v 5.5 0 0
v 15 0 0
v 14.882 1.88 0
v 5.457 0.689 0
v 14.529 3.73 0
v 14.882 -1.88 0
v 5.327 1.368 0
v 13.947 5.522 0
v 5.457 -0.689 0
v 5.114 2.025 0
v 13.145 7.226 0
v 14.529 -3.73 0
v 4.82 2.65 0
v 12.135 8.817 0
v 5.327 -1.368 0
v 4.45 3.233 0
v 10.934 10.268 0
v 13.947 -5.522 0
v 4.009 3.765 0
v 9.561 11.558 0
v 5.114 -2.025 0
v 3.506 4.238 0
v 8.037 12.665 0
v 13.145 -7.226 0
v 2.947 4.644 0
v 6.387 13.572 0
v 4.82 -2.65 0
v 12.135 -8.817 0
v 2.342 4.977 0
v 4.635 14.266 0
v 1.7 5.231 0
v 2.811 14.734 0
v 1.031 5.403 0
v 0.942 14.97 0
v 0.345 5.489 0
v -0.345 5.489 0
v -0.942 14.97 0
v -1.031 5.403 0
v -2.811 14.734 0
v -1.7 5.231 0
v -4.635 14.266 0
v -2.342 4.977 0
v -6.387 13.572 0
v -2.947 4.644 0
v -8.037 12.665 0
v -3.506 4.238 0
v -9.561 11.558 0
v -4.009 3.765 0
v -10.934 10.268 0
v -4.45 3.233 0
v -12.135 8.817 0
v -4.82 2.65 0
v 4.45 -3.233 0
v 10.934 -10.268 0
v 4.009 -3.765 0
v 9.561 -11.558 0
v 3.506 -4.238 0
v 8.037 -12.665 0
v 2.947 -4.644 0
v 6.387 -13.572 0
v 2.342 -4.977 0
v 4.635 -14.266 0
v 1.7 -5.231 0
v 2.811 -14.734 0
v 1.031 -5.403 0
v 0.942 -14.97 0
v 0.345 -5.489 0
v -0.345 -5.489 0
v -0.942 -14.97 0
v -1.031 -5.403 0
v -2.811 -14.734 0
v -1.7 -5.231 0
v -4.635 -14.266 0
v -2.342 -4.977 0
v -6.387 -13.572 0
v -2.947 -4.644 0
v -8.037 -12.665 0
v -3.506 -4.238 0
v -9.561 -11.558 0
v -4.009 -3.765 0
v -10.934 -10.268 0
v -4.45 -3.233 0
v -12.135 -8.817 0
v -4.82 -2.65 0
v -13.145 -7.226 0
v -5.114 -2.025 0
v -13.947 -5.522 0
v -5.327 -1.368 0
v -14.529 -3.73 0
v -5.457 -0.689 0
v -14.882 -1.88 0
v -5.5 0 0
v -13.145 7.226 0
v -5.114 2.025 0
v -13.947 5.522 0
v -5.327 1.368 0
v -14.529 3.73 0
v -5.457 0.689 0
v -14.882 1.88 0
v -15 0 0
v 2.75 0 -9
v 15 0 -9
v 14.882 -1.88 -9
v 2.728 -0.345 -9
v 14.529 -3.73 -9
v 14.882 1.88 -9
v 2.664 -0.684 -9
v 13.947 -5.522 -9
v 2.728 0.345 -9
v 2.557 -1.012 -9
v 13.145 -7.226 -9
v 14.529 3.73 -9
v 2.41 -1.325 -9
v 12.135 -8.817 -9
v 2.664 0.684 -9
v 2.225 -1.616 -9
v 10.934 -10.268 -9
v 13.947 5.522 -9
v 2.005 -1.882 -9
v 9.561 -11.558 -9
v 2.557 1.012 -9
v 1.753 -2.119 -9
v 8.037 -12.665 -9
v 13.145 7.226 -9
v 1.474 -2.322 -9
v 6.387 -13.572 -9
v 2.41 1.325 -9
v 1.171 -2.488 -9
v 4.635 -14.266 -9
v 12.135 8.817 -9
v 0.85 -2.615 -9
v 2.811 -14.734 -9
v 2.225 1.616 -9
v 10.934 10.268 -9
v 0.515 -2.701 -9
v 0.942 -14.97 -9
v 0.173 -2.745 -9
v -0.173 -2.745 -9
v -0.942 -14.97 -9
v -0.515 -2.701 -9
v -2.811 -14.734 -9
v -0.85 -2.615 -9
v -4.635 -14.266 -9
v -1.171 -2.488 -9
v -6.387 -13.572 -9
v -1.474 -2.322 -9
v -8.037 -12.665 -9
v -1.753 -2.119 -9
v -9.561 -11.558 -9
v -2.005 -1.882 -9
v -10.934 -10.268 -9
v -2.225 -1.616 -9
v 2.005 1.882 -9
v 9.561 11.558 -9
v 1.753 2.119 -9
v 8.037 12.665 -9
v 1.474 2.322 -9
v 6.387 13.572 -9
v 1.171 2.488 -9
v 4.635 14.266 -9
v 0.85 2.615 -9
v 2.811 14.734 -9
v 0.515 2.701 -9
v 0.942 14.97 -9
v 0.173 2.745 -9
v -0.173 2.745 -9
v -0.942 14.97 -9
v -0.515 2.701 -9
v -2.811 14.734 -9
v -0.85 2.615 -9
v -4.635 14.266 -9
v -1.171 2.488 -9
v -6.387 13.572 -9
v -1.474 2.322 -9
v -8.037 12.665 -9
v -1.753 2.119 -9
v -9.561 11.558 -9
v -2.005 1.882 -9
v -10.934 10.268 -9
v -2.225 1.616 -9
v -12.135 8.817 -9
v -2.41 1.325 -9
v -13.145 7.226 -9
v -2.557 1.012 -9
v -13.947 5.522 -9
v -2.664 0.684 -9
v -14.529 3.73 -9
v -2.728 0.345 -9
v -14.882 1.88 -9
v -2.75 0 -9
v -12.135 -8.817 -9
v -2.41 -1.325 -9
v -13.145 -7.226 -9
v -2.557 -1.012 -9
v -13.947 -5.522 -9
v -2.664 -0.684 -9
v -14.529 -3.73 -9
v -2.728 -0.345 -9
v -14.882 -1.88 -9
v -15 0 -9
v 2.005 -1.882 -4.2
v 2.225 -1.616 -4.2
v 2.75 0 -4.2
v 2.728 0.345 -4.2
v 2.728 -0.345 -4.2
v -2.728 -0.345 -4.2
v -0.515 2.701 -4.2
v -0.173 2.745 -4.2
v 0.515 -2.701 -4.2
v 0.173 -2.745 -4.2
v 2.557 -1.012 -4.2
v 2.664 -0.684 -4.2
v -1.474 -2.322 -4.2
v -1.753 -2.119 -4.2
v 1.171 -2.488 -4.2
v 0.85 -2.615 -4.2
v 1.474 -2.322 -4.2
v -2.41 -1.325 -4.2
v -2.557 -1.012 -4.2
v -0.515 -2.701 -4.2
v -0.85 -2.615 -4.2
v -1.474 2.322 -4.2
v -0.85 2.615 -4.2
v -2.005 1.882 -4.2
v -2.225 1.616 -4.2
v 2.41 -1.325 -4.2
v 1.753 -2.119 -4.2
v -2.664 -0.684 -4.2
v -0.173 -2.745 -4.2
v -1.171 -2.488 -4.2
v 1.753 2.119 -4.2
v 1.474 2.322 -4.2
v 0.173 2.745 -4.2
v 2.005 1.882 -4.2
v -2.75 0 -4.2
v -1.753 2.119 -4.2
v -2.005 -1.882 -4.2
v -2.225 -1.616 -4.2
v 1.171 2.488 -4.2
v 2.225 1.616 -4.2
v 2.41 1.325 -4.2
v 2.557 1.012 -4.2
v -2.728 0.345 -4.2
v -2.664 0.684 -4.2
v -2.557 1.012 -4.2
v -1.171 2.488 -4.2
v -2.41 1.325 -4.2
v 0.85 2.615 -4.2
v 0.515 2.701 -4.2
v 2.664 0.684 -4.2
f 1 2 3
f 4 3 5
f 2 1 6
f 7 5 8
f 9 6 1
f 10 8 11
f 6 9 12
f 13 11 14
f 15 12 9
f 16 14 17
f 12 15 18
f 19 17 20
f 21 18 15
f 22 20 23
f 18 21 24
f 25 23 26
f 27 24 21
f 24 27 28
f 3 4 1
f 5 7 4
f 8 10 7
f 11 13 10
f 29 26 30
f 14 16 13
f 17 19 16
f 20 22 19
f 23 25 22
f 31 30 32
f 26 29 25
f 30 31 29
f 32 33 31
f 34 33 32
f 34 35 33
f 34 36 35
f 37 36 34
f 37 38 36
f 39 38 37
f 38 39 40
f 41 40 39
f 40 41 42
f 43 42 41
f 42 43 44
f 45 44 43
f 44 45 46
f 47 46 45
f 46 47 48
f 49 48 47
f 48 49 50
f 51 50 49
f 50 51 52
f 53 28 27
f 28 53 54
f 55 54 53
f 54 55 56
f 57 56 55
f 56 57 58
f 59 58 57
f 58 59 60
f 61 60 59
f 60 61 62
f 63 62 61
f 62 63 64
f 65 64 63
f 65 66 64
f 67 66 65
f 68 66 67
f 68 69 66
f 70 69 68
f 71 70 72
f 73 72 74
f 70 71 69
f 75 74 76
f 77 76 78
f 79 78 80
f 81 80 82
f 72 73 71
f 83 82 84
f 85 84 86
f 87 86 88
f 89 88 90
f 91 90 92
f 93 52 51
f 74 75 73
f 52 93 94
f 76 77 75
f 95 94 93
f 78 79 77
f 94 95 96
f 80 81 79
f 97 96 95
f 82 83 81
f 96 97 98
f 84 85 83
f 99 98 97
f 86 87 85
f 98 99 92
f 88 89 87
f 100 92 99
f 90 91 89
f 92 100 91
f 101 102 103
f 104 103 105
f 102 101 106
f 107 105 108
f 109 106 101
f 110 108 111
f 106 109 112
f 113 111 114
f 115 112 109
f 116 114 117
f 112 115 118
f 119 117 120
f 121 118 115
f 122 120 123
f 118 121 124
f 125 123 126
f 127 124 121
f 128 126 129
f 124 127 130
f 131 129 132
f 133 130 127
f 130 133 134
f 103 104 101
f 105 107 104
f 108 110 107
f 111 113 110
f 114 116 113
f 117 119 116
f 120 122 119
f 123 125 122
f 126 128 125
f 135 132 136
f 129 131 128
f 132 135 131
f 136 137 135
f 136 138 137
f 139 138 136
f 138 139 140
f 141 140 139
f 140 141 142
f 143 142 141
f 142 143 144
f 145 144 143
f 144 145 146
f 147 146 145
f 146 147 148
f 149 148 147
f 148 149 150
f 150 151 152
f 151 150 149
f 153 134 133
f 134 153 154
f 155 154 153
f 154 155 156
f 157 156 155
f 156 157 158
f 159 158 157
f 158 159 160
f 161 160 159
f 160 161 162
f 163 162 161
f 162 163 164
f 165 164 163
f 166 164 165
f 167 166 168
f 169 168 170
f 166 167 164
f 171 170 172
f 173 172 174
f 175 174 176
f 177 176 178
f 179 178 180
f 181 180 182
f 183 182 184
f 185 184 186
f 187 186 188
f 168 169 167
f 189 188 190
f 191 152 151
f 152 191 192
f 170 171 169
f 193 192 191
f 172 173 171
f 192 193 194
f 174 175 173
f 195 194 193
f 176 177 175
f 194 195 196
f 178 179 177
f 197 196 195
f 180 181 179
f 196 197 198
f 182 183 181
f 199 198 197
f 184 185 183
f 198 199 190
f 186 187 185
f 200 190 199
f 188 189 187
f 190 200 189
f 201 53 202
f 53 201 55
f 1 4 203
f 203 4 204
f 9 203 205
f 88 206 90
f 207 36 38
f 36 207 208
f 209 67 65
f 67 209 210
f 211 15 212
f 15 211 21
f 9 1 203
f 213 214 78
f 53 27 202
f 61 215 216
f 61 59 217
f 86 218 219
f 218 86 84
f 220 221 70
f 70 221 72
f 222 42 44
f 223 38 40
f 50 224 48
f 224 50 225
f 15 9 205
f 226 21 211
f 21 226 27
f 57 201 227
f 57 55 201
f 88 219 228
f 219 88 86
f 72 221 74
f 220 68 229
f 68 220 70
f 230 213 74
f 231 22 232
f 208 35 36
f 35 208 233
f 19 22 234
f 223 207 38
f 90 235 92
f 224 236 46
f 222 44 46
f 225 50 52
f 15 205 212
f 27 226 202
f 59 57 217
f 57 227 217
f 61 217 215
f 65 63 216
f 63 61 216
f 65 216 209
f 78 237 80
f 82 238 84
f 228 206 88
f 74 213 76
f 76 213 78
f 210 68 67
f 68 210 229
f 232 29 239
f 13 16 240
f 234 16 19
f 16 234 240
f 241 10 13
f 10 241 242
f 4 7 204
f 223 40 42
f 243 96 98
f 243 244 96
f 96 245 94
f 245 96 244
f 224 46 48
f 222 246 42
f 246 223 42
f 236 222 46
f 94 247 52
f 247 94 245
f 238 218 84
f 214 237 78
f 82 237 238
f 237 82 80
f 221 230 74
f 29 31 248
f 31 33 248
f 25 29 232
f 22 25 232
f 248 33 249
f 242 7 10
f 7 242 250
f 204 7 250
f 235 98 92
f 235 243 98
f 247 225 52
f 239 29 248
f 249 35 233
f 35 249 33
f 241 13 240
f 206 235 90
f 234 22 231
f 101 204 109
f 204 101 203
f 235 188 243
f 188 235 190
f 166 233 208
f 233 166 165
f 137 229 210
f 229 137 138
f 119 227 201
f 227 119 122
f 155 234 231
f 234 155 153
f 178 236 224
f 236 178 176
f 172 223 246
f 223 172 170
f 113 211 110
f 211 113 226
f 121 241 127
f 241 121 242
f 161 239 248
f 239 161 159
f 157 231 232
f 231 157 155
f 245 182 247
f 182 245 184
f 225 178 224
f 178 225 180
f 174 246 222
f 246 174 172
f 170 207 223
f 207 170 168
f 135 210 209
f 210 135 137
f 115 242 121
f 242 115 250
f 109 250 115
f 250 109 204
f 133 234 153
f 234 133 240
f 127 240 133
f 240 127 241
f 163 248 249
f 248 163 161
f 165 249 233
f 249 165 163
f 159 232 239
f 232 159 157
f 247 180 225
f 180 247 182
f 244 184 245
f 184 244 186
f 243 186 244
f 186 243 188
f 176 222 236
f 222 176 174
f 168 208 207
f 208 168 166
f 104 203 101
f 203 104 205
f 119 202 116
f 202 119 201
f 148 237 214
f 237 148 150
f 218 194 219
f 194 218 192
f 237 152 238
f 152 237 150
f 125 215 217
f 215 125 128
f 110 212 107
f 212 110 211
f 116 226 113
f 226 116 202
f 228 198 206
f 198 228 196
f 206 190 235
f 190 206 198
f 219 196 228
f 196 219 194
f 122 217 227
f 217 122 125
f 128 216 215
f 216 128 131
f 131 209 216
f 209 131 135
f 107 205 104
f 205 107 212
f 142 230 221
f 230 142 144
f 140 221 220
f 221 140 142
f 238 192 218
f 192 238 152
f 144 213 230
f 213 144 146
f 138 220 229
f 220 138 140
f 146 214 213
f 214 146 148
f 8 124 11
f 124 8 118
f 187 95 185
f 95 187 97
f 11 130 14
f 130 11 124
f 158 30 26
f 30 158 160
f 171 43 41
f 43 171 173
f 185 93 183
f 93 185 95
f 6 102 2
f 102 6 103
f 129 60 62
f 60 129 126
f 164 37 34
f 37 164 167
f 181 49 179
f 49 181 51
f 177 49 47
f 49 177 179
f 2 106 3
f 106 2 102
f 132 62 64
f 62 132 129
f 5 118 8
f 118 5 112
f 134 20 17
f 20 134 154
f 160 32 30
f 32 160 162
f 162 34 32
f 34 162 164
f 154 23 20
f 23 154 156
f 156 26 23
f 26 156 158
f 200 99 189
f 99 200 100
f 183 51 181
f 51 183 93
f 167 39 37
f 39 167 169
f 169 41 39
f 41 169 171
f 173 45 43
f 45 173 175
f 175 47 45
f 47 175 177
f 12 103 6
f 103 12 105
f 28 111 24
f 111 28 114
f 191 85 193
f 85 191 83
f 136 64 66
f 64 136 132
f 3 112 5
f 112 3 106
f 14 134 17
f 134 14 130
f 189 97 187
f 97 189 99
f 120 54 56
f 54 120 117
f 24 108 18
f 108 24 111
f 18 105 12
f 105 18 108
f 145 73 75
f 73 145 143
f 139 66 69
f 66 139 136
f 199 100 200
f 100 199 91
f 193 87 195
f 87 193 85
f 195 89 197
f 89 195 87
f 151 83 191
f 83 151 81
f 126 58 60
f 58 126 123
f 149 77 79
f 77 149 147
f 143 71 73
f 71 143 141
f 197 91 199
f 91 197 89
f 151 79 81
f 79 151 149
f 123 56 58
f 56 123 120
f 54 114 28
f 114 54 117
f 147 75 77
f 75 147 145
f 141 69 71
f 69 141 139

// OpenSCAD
$fn = 50;


difference() {
	union() {
		translate(v = [0, 0, -9.0000000000]) {
			cylinder(h = 9, r = 15.0000000000);
		}
	}
	union() {
		translate(v = [0, 0, 0]) {
			rotate(a = [0, 0, 0]) {
				difference() {
					union() {
						#translate(v = [0, 0, -9.0000000000]) {
							cylinder(h = 9, r = 2.2500000000);
						}
						#translate(v = [0, 0, -4.2000000000]) {
							cylinder(h = 4.2000000000, r1 = 2.7500000000, r2 = 5.5000000000);
						}
						#translate(v = [0, 0, -9.0000000000]) {
							cylinder(h = 9, r = 2.7500000000);
						}
						#translate(v = [0, 0, -9.0000000000]) {
							cylinder(h = 9, r = 2.2500000000);
						}
					}
					union();
				}
			}
		}
	}
}
